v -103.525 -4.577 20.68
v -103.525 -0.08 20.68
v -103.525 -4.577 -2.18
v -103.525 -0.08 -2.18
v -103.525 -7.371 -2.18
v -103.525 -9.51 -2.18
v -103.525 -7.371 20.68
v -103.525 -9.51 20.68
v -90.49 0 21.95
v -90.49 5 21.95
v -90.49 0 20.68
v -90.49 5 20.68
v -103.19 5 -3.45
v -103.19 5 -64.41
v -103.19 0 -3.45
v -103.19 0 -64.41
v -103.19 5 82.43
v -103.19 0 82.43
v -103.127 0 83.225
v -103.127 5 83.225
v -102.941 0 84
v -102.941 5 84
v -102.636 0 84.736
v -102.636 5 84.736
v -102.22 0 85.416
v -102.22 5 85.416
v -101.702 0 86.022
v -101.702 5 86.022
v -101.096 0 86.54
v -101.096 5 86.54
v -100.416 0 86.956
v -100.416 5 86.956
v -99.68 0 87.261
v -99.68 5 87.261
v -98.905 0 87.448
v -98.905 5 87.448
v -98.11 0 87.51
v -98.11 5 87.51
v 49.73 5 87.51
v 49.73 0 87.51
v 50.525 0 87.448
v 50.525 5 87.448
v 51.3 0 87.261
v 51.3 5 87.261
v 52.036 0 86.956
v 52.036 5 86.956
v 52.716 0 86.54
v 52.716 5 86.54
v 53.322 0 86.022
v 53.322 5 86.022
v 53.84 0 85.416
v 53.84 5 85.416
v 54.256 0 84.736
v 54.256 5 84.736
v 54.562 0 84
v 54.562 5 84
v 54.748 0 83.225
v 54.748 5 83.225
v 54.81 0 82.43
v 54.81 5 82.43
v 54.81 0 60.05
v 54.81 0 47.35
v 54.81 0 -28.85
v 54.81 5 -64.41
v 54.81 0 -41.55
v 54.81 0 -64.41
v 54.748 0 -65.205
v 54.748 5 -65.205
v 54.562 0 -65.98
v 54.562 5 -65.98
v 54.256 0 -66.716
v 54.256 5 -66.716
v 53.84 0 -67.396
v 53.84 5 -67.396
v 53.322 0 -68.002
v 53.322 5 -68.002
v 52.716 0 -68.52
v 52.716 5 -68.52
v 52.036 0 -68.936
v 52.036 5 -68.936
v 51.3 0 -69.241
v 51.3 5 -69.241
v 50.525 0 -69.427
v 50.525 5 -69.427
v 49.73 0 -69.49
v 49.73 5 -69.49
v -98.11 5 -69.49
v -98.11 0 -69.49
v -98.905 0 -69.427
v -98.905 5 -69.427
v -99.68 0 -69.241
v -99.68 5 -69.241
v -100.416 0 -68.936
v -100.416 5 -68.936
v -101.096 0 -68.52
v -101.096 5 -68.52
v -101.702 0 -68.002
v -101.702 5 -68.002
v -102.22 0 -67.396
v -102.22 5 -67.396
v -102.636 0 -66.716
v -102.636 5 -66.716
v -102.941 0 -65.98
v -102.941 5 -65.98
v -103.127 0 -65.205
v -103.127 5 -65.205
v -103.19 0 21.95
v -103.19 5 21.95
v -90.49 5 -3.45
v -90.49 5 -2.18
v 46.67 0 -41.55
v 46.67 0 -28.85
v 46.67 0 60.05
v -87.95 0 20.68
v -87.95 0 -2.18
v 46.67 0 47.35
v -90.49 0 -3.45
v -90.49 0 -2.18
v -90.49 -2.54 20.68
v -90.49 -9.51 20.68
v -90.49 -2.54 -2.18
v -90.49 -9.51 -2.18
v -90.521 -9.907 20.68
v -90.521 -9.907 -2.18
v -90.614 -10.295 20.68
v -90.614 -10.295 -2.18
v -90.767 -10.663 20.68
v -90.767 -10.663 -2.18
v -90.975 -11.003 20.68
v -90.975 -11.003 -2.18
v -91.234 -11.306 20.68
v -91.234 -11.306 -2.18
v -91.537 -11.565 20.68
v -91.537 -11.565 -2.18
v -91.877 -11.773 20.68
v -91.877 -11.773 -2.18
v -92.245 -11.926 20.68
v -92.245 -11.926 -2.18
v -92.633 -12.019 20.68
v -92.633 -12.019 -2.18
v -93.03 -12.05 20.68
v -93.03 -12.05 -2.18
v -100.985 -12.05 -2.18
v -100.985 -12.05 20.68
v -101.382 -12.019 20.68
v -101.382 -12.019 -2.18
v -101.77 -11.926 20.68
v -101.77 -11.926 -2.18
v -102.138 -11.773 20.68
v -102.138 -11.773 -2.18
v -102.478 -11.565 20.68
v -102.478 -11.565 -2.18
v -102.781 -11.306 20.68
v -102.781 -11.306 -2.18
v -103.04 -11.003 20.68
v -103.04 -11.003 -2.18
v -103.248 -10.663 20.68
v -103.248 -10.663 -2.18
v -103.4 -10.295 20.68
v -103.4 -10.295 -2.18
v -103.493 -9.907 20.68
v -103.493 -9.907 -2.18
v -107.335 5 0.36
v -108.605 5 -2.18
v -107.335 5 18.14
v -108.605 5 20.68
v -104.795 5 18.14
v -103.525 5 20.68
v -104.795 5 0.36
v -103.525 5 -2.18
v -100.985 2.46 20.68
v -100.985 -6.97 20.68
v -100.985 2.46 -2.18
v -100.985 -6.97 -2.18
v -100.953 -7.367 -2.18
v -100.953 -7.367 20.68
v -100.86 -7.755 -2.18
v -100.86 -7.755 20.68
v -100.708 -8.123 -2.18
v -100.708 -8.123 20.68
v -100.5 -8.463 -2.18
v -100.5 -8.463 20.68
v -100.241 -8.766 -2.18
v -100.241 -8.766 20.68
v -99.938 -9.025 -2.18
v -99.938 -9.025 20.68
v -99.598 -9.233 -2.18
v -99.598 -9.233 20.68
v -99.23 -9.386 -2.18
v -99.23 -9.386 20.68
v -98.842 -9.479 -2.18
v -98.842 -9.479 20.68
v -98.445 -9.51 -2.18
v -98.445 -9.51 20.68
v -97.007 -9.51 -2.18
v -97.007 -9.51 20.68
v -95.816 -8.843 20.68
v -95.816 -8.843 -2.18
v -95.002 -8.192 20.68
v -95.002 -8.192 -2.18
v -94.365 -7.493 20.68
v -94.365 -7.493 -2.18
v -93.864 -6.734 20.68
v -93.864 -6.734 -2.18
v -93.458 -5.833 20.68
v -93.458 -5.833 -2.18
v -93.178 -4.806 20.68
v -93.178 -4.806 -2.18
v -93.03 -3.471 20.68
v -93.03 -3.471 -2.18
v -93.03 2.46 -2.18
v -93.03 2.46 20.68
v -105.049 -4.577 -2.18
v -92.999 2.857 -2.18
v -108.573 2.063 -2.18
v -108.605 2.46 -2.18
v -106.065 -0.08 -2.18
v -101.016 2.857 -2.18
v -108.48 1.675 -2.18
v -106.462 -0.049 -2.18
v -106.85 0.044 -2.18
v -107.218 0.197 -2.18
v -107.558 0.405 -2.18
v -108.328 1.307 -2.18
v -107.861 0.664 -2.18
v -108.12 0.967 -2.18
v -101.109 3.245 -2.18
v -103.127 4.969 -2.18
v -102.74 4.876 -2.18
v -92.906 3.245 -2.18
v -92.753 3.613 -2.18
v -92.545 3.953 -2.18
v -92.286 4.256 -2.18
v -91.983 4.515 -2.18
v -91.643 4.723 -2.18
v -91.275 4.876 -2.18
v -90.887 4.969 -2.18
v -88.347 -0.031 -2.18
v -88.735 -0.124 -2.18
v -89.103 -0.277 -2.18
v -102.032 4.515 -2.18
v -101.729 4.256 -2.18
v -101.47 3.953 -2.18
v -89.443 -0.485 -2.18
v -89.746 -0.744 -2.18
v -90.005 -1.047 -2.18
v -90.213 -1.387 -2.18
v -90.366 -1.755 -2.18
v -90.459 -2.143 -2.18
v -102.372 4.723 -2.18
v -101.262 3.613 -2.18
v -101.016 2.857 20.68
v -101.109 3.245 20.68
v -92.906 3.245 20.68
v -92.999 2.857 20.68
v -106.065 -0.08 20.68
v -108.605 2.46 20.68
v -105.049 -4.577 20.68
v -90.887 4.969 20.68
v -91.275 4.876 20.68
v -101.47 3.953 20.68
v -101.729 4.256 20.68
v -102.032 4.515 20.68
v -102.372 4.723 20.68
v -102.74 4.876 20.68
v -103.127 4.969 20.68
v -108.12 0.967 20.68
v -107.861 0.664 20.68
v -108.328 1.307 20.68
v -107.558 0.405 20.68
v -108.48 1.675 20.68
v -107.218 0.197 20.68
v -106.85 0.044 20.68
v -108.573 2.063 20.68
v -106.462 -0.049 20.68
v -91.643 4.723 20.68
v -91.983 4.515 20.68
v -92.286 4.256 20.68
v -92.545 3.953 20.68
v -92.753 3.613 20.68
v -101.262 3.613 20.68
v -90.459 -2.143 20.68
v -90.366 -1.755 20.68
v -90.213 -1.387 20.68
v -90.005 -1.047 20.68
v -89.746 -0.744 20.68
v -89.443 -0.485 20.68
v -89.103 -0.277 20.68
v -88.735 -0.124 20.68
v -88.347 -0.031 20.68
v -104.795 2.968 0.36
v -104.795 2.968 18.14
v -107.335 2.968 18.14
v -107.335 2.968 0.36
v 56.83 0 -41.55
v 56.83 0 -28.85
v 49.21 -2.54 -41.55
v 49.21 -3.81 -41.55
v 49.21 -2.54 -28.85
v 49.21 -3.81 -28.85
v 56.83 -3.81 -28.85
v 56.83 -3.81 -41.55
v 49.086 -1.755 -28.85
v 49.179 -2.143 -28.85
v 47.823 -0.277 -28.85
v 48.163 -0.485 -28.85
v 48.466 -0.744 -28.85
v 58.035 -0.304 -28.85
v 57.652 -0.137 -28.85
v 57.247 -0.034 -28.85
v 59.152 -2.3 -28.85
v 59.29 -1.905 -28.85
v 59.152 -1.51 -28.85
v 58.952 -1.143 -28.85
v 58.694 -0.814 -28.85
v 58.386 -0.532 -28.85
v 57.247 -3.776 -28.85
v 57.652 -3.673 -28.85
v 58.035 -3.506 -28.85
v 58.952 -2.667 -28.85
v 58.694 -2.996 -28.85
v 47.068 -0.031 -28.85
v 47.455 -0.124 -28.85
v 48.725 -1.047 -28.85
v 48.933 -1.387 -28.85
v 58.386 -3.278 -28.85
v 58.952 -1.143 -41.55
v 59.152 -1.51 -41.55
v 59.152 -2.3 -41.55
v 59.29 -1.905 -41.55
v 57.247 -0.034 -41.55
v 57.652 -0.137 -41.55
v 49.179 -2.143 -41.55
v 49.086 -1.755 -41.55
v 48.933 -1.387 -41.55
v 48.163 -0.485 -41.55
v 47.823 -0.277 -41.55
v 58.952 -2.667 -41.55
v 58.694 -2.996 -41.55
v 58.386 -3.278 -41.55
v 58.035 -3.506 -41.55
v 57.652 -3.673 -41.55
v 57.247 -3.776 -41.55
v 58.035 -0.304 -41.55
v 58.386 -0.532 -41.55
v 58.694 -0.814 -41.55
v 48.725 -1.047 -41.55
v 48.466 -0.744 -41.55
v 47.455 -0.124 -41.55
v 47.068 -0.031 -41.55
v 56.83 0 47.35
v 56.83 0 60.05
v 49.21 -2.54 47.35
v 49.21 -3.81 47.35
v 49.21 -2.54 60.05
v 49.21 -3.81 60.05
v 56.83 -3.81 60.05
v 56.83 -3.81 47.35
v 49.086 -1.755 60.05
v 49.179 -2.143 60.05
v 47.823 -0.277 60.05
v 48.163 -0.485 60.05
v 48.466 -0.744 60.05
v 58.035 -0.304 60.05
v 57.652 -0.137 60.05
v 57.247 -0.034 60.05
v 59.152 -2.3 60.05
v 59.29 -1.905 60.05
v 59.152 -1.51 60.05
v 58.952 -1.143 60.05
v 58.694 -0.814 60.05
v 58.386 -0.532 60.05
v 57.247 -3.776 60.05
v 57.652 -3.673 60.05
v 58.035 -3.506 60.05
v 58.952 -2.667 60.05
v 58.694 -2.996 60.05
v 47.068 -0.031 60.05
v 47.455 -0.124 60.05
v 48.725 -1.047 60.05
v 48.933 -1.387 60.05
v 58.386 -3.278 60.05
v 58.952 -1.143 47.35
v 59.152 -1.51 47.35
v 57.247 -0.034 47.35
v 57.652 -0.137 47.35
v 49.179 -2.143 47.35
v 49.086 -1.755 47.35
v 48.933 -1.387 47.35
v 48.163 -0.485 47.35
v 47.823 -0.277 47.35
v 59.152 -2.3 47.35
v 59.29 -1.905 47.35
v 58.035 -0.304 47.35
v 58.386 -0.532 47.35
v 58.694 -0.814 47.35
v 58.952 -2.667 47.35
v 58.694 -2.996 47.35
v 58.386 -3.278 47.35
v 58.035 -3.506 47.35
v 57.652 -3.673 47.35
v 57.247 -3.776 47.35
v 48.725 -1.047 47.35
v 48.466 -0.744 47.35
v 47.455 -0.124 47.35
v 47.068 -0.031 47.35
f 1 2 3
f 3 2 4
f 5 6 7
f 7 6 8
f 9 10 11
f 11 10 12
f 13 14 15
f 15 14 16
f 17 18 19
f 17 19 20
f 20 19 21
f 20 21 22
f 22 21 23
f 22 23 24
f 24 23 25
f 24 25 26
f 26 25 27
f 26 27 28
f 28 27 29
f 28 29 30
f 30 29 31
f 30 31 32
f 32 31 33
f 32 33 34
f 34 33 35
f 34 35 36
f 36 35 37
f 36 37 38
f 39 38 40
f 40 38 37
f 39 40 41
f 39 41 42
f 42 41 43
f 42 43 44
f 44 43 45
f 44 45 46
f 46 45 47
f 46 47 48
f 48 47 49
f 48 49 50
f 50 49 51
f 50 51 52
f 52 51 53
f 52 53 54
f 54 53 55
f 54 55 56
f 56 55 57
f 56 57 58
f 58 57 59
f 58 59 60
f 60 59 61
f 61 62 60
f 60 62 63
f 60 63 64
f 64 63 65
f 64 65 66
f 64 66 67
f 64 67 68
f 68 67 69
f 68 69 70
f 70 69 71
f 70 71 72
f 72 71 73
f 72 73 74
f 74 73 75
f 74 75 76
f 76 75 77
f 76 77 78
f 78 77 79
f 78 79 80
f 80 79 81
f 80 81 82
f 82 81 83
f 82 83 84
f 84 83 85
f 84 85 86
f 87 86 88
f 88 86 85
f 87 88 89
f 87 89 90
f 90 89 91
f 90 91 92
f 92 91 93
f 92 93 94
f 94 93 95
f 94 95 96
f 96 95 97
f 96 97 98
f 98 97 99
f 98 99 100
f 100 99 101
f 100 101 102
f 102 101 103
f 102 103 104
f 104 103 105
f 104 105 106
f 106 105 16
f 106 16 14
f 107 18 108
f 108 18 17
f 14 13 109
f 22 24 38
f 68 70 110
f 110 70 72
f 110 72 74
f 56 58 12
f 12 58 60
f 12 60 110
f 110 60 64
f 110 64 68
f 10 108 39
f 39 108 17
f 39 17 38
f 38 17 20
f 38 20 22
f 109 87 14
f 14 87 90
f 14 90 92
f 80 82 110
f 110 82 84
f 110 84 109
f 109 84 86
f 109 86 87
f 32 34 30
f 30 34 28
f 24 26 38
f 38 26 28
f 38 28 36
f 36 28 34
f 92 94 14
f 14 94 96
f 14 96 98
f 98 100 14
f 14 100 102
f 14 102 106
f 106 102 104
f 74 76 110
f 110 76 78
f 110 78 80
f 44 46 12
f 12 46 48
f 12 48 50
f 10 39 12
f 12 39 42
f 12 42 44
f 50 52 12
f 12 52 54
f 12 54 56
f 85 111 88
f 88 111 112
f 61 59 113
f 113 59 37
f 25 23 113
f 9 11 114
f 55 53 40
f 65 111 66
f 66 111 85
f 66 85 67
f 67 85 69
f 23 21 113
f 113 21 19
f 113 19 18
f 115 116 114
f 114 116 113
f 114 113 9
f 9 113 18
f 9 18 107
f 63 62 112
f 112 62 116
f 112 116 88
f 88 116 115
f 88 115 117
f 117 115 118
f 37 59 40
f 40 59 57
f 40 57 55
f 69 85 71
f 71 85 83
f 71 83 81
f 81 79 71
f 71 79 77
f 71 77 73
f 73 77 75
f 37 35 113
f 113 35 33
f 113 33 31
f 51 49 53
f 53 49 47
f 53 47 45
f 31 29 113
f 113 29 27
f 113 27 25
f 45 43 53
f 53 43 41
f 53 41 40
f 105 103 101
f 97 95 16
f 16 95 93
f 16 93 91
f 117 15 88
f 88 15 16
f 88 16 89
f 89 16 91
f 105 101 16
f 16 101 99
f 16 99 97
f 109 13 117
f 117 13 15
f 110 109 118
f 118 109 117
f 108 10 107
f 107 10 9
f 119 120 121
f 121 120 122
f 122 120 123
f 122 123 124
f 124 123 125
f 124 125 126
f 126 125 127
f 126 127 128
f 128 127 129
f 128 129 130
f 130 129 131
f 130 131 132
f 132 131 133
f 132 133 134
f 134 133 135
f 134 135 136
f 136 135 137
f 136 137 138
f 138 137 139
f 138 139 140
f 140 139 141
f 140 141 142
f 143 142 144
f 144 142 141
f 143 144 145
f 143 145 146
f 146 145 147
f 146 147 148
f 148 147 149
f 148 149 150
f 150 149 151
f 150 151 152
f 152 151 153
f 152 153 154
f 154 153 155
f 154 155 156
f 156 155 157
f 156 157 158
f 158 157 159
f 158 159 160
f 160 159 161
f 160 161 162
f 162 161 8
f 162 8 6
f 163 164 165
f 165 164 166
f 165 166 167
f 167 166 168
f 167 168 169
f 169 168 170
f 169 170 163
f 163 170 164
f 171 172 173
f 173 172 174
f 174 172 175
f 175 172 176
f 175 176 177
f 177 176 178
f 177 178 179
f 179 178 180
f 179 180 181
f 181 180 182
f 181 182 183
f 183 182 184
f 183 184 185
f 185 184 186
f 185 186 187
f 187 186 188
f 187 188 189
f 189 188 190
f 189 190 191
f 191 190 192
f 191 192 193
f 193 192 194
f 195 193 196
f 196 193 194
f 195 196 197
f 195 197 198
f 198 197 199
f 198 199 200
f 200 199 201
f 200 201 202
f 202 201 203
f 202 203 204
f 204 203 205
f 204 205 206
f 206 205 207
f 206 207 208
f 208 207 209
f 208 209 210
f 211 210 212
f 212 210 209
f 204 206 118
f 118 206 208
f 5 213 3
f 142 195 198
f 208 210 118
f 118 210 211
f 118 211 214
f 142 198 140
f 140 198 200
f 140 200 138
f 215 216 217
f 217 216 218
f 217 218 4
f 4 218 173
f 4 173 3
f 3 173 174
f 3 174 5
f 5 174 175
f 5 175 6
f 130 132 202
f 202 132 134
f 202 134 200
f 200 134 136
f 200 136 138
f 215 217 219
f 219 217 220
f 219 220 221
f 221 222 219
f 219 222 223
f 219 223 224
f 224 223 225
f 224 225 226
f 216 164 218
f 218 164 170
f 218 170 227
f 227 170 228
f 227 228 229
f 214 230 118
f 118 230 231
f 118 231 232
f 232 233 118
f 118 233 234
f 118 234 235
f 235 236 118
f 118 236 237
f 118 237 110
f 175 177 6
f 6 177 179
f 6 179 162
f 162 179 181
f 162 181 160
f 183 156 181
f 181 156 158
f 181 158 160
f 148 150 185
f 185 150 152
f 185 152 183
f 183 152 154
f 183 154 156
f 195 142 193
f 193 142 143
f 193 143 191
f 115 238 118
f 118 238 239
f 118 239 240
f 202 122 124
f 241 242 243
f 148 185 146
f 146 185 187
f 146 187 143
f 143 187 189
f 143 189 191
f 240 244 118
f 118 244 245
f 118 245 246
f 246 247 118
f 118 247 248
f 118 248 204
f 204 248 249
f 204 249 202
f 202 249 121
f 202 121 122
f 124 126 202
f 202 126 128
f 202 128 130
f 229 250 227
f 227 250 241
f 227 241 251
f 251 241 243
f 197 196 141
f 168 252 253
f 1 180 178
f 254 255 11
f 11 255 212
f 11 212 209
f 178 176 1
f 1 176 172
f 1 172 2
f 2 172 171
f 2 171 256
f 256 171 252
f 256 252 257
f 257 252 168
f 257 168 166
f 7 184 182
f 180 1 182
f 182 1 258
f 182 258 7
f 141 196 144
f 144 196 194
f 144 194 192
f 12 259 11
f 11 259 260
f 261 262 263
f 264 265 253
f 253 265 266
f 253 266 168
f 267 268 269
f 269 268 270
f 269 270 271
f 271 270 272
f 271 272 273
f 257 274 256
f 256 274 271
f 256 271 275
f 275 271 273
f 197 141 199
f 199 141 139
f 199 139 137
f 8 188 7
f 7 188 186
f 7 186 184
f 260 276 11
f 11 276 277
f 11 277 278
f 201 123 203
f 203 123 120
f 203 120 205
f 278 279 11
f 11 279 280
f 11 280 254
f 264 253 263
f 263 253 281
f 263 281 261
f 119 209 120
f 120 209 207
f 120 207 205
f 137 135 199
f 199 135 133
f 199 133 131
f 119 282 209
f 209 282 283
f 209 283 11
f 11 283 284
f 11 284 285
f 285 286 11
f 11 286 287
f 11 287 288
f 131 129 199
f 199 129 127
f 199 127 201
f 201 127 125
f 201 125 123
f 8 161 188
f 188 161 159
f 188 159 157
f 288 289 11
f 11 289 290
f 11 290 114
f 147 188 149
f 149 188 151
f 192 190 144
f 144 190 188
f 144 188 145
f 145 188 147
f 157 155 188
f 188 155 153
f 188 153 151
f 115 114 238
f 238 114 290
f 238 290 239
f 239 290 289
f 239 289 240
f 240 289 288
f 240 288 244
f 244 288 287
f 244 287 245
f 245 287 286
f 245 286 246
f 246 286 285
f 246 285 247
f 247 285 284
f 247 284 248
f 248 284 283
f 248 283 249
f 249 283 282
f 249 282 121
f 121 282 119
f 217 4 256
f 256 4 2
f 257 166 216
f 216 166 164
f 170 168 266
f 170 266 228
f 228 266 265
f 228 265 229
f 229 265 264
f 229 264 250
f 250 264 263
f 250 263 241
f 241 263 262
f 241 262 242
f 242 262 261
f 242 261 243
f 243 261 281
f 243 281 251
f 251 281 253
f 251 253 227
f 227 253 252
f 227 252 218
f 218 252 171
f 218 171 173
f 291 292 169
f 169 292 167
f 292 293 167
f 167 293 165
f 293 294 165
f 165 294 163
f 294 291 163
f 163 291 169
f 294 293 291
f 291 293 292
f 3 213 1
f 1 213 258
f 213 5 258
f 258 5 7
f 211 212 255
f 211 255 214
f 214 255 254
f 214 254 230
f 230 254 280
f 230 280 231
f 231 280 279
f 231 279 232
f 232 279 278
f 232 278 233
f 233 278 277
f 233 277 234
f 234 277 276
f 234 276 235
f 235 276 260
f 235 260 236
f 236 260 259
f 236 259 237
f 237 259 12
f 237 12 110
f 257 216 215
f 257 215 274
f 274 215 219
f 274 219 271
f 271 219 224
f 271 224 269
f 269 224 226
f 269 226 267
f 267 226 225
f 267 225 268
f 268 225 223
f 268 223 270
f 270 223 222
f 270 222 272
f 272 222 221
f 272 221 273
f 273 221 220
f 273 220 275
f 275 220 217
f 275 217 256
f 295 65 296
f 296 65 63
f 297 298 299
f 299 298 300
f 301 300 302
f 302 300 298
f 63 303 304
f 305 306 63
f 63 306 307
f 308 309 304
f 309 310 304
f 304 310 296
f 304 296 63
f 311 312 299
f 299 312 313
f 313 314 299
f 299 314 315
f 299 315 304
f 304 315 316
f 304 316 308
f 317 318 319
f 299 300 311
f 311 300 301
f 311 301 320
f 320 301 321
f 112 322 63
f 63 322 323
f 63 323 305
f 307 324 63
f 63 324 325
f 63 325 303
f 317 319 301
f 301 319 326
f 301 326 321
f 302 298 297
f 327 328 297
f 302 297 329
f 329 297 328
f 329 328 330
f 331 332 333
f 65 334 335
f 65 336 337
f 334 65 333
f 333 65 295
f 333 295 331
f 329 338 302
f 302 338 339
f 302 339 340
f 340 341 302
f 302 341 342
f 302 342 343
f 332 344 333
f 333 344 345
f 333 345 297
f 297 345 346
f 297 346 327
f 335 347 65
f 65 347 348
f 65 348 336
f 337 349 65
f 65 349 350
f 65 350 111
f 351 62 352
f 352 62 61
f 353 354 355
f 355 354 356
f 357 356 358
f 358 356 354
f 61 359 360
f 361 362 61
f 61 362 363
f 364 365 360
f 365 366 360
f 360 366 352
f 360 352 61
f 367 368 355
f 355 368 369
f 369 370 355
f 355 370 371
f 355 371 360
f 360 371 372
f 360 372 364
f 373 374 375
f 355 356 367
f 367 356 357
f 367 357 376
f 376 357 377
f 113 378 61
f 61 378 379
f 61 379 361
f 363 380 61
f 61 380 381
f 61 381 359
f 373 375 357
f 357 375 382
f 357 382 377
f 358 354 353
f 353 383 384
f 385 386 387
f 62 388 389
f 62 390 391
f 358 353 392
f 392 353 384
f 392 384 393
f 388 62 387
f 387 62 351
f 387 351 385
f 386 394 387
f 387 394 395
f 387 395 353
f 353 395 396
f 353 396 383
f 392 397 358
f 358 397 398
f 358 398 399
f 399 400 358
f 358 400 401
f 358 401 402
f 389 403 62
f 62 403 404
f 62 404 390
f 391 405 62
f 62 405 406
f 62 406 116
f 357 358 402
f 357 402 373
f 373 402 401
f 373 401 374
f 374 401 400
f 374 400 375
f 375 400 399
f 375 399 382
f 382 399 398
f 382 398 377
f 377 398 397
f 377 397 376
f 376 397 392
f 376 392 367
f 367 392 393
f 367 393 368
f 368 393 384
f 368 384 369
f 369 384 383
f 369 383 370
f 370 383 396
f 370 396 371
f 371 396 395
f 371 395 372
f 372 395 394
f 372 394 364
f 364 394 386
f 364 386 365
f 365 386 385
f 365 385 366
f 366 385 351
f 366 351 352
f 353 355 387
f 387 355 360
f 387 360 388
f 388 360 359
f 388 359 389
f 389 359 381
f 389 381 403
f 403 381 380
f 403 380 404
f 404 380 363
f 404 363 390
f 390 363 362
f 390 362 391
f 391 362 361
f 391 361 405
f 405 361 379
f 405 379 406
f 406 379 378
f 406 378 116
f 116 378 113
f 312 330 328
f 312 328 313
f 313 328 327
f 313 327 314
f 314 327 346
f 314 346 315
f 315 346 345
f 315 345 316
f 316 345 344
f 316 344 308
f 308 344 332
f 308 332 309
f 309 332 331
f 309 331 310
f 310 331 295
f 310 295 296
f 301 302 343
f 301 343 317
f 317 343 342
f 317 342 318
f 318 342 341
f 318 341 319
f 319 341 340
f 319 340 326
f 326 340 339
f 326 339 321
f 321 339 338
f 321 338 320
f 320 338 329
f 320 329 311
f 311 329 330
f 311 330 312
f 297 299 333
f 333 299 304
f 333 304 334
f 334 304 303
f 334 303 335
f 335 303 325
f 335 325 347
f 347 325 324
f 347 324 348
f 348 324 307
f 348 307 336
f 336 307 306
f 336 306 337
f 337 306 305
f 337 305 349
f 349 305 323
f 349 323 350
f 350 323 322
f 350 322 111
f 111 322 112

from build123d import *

# Parameters (mm, degrees)
BOSS_EXTRUDE1_DEPTH  = 5
SKETCH8_W            = 12.7
SKETCH8_H            = 25.4
CUT_EXTRUDE1_DEPTH   = 12.7
BOSS_EXTRUDE6_START  = 1.27
BOSS_EXTRUDE6_DEPTH  = 22.86
FILLET3_R            = 2.54
SKETCH12_W           = 22.86
SKETCH12_H           = 5.08
BOSS_EXTRUDE7_DEPTH  = 5.08
FILLET8_R            = 2.54
SKETCH13_W           = 2.54
SKETCH13_H           = 17.78
CUT_EXTRUDE2_DEPTH   = 2.032
BOSS_EXTRUDE8_DEPTH  = 22.86
FILLET5_R            = 2.54
FILLET6_R            = 2.54
BOSS_EXTRUDE9_START  = -27.94
SKETCH15_W           = 10.16
SKETCH15_H           = 3.81
BOSS_EXTRUDE9_DEPTH  = 12.7
BOSS_EXTRUDE10_START = -116.84
SKETCH15_2_W         = 10.16
SKETCH15_2_H         = 3.81
BOSS_EXTRUDE10_DEPTH = 12.7
FILLET7_R            = 2.54


with BuildPart() as part:
    # Sketch2 → Boss-Extrude1 (new body)
    with BuildSketch(Plane(origin=(0, 0, 0), x_dir=(1, 0, 0), z_dir=(0, 1, 0))):
        with BuildLine():
            Line((-98.109845206, -87.510053172), (49.730154794, -87.510053172))
            ThreePointArc((49.730154794, -87.510053172), (53.322257243, -86.02215562), (54.810154794, -82.430053172))
            Line((54.810154794, -82.430053172), (54.810154794, 64.409946828))
            ThreePointArc((54.810154794, 64.409946828), (53.322257243, 68.002049277), (49.730154794, 69.489946828))
            Line((49.730154794, 69.489946828), (-98.109845206, 69.489946828))
            ThreePointArc((-98.109845206, 69.489946828), (-101.701947654, 68.002049277), (-103.189845206, 64.409946828))
            Line((-103.189845206, 64.409946828), (-103.189845206, -82.430053172))
            ThreePointArc((-103.189845206, -82.430053172), (-101.701947654, -86.02215562), (-98.109845206, -87.510053172))
        make_face()
    extrude(amount=BOSS_EXTRUDE1_DEPTH)

    # Sketch8 → Cut-Extrude1 (cut)
    with BuildSketch(Plane(origin=(0, 5, 0), x_dir=(1, 0, 0), z_dir=(0, 1, 0))):
        with Locations((-96.839845206, -9.250053172)):
            Rectangle(SKETCH8_W, SKETCH8_H)
    extrude(amount=-CUT_EXTRUDE1_DEPTH, mode=Mode.SUBTRACT)

    # Sketch9 → Boss-Extrude6 (add)
    with BuildSketch(Plane(origin=(0, 0, 21.950053172), x_dir=(-1, 0, 0), z_dir=(0, 0, -1)).offset(BOSS_EXTRUDE6_START)):
        with BuildLine():
            Line((90.489845206, 5), (90.489845206, -9.510091846))
            ThreePointArc((90.489845206, -9.510091846), (91.233793982, -11.30614307), (93.029845206, -12.050091846))
            Line((93.029845206, -12.050091846), (100.984663509, -12.050091846))
            ThreePointArc((100.984663509, -12.050091846), (102.780714734, -11.30614307), (103.524663509, -9.510091846))
            Line((103.524663509, -9.510091846), (103.524663509, 5))
            Line((103.524663509, 5), (100.984663509, 5))
            Line((100.984663509, 5), (100.984663509, -6.970091846))
            ThreePointArc((100.984663509, -6.970091846), (100.240714734, -8.76614307), (98.444663509, -9.510091846))
            Line((98.444663509, -9.510091846), (97.007254358, -9.510091846))
            add(Edge.make_bspline(
                [(93.029845206, -3.470974905), (93.181288834, -7.756398779), (97.007254358, -9.510091846)],
                knots=[0, 0, 0, 1, 1, 1], degree=2))
            Line((93.029845206, -3.470974905), (93.029845206, 5))
            Line((93.029845206, 5), (90.489845206, 5))
        make_face()
    extrude(amount=BOSS_EXTRUDE6_DEPTH)

    # Fillet3
    fillet3_edges = [part.edges().sort_by_distance(p)[0] for p in [
        (-90.489845206, 0, 9.250053172),
    ]]
    fillet(fillet3_edges, radius=FILLET3_R)

    # Sketch12 → Boss-Extrude7 (add)
    with BuildSketch(Plane.ZY.offset(103.524663509)):
        with Locations((9.250053172, 2.46)):
            Rectangle(SKETCH12_W, SKETCH12_H)
    extrude(amount=BOSS_EXTRUDE7_DEPTH)

    # Fillet8
    fillet8_edges = [part.edges().sort_by_distance(p)[0] for p in [
        (-100.984663509, 5, 9.250053172),
    ]]
    fillet(fillet8_edges, radius=FILLET8_R)

    # Sketch13 → Cut-Extrude2 (cut)
    with BuildSketch(Plane(origin=(0, 5, 0), x_dir=(1, 0, 0), z_dir=(0, 1, 0))):
        with Locations((-106.064663509, -9.250053172)):
            Rectangle(SKETCH13_W, SKETCH13_H)
    extrude(amount=-CUT_EXTRUDE2_DEPTH, mode=Mode.SUBTRACT)

    # Sketch14 → Boss-Extrude8 (add)
    with BuildSketch(Plane(origin=(0, 0, -2.179946828), x_dir=(-1, 0, 0), z_dir=(0, 0, -1))):
        Polygon((103.524663509, -4.576775108), (105.048663509, -4.576775108), (103.524663509, -7.370775108), align=None)
    extrude(amount=-BOSS_EXTRUDE8_DEPTH)

    # Fillet5
    fillet5_edges = [part.edges().sort_by_distance(p)[0] for p in [
        (-93.029845206, 5, 9.250053172),
    ]]
    fillet(fillet5_edges, radius=FILLET5_R)

    # Fillet6
    fillet6_edges = [part.edges().sort_by_distance(p)[0] for p in [
        (-108.604663509, -0.08, 9.250053172),
    ]]
    fillet(fillet6_edges, radius=FILLET6_R)

    # Sketch15 → Boss-Extrude9 (add)
    with BuildSketch(Plane(origin=(0, 0, -69.489946828), x_dir=(-1, 0, 0), z_dir=(0, 0, -1)).offset(BOSS_EXTRUDE9_START)):
        with Locations((-54.290154794, -1.905)):
            Rectangle(SKETCH15_W, SKETCH15_H)
    extrude(amount=-BOSS_EXTRUDE9_DEPTH)

    # Sketch15<2> → Boss-Extrude10 (add)
    with BuildSketch(Plane(origin=(0, 0, -69.489946828), x_dir=(-1, 0, 0), z_dir=(0, 0, -1)).offset(BOSS_EXTRUDE10_START)):
        with Locations((-54.290154794, -1.905)):
            Rectangle(SKETCH15_2_W, SKETCH15_2_H)
    extrude(amount=-BOSS_EXTRUDE10_DEPTH)

    # Fillet7
    # the kernel refuses this fillet: 2.54 mm, written as the material it adds along each edge
    with BuildSketch(Plane(origin=(49.210154794, 0, 47.350053172), x_dir=(-1, 0, 0), z_dir=(0, 0, 1)), Plane(origin=(49.210154794, 0, -41.549946828), x_dir=(-1, 0, 0), z_dir=(0, 0, 1))) as fillet7_piece_1:
        with BuildLine():
            CenterArc((FILLET7_R, FILLET7_R), FILLET7_R, 180, 90)
            Line((0, FILLET7_R), (0, 0))
            Line((0, 0), (FILLET7_R, 0))
        make_face()
    extrude(amount=12.7)
    # the kernel refuses this fillet: 2.54 mm, written as the material it takes off along each edge
    with BuildSketch(Plane(origin=(59.370154794, 0, 41.000053172), x_dir=(-1, 0, 0), z_dir=(0, 0, 1)), Plane(origin=(59.370154794, -3.81, 41.000053172), x_dir=(0, 1, 0), z_dir=(0, 0, 1)), Plane(origin=(59.370154794, -3.81, -47.899946828), x_dir=(0, 1, 0), z_dir=(0, 0, 1)), Plane(origin=(59.370154794, 0, -47.899946828), x_dir=(-1, 0, 0), z_dir=(0, 0, 1))) as fillet7_2_piece_1:
        with BuildLine():
            CenterArc((FILLET7_R, FILLET7_R), FILLET7_R, 180, 90)
            Line((0, FILLET7_R), (0, 0))
            Line((0, 0), (FILLET7_R, 0))
        make_face()
    extrude(amount=25.4, mode=Mode.SUBTRACT)


solid = part.part
